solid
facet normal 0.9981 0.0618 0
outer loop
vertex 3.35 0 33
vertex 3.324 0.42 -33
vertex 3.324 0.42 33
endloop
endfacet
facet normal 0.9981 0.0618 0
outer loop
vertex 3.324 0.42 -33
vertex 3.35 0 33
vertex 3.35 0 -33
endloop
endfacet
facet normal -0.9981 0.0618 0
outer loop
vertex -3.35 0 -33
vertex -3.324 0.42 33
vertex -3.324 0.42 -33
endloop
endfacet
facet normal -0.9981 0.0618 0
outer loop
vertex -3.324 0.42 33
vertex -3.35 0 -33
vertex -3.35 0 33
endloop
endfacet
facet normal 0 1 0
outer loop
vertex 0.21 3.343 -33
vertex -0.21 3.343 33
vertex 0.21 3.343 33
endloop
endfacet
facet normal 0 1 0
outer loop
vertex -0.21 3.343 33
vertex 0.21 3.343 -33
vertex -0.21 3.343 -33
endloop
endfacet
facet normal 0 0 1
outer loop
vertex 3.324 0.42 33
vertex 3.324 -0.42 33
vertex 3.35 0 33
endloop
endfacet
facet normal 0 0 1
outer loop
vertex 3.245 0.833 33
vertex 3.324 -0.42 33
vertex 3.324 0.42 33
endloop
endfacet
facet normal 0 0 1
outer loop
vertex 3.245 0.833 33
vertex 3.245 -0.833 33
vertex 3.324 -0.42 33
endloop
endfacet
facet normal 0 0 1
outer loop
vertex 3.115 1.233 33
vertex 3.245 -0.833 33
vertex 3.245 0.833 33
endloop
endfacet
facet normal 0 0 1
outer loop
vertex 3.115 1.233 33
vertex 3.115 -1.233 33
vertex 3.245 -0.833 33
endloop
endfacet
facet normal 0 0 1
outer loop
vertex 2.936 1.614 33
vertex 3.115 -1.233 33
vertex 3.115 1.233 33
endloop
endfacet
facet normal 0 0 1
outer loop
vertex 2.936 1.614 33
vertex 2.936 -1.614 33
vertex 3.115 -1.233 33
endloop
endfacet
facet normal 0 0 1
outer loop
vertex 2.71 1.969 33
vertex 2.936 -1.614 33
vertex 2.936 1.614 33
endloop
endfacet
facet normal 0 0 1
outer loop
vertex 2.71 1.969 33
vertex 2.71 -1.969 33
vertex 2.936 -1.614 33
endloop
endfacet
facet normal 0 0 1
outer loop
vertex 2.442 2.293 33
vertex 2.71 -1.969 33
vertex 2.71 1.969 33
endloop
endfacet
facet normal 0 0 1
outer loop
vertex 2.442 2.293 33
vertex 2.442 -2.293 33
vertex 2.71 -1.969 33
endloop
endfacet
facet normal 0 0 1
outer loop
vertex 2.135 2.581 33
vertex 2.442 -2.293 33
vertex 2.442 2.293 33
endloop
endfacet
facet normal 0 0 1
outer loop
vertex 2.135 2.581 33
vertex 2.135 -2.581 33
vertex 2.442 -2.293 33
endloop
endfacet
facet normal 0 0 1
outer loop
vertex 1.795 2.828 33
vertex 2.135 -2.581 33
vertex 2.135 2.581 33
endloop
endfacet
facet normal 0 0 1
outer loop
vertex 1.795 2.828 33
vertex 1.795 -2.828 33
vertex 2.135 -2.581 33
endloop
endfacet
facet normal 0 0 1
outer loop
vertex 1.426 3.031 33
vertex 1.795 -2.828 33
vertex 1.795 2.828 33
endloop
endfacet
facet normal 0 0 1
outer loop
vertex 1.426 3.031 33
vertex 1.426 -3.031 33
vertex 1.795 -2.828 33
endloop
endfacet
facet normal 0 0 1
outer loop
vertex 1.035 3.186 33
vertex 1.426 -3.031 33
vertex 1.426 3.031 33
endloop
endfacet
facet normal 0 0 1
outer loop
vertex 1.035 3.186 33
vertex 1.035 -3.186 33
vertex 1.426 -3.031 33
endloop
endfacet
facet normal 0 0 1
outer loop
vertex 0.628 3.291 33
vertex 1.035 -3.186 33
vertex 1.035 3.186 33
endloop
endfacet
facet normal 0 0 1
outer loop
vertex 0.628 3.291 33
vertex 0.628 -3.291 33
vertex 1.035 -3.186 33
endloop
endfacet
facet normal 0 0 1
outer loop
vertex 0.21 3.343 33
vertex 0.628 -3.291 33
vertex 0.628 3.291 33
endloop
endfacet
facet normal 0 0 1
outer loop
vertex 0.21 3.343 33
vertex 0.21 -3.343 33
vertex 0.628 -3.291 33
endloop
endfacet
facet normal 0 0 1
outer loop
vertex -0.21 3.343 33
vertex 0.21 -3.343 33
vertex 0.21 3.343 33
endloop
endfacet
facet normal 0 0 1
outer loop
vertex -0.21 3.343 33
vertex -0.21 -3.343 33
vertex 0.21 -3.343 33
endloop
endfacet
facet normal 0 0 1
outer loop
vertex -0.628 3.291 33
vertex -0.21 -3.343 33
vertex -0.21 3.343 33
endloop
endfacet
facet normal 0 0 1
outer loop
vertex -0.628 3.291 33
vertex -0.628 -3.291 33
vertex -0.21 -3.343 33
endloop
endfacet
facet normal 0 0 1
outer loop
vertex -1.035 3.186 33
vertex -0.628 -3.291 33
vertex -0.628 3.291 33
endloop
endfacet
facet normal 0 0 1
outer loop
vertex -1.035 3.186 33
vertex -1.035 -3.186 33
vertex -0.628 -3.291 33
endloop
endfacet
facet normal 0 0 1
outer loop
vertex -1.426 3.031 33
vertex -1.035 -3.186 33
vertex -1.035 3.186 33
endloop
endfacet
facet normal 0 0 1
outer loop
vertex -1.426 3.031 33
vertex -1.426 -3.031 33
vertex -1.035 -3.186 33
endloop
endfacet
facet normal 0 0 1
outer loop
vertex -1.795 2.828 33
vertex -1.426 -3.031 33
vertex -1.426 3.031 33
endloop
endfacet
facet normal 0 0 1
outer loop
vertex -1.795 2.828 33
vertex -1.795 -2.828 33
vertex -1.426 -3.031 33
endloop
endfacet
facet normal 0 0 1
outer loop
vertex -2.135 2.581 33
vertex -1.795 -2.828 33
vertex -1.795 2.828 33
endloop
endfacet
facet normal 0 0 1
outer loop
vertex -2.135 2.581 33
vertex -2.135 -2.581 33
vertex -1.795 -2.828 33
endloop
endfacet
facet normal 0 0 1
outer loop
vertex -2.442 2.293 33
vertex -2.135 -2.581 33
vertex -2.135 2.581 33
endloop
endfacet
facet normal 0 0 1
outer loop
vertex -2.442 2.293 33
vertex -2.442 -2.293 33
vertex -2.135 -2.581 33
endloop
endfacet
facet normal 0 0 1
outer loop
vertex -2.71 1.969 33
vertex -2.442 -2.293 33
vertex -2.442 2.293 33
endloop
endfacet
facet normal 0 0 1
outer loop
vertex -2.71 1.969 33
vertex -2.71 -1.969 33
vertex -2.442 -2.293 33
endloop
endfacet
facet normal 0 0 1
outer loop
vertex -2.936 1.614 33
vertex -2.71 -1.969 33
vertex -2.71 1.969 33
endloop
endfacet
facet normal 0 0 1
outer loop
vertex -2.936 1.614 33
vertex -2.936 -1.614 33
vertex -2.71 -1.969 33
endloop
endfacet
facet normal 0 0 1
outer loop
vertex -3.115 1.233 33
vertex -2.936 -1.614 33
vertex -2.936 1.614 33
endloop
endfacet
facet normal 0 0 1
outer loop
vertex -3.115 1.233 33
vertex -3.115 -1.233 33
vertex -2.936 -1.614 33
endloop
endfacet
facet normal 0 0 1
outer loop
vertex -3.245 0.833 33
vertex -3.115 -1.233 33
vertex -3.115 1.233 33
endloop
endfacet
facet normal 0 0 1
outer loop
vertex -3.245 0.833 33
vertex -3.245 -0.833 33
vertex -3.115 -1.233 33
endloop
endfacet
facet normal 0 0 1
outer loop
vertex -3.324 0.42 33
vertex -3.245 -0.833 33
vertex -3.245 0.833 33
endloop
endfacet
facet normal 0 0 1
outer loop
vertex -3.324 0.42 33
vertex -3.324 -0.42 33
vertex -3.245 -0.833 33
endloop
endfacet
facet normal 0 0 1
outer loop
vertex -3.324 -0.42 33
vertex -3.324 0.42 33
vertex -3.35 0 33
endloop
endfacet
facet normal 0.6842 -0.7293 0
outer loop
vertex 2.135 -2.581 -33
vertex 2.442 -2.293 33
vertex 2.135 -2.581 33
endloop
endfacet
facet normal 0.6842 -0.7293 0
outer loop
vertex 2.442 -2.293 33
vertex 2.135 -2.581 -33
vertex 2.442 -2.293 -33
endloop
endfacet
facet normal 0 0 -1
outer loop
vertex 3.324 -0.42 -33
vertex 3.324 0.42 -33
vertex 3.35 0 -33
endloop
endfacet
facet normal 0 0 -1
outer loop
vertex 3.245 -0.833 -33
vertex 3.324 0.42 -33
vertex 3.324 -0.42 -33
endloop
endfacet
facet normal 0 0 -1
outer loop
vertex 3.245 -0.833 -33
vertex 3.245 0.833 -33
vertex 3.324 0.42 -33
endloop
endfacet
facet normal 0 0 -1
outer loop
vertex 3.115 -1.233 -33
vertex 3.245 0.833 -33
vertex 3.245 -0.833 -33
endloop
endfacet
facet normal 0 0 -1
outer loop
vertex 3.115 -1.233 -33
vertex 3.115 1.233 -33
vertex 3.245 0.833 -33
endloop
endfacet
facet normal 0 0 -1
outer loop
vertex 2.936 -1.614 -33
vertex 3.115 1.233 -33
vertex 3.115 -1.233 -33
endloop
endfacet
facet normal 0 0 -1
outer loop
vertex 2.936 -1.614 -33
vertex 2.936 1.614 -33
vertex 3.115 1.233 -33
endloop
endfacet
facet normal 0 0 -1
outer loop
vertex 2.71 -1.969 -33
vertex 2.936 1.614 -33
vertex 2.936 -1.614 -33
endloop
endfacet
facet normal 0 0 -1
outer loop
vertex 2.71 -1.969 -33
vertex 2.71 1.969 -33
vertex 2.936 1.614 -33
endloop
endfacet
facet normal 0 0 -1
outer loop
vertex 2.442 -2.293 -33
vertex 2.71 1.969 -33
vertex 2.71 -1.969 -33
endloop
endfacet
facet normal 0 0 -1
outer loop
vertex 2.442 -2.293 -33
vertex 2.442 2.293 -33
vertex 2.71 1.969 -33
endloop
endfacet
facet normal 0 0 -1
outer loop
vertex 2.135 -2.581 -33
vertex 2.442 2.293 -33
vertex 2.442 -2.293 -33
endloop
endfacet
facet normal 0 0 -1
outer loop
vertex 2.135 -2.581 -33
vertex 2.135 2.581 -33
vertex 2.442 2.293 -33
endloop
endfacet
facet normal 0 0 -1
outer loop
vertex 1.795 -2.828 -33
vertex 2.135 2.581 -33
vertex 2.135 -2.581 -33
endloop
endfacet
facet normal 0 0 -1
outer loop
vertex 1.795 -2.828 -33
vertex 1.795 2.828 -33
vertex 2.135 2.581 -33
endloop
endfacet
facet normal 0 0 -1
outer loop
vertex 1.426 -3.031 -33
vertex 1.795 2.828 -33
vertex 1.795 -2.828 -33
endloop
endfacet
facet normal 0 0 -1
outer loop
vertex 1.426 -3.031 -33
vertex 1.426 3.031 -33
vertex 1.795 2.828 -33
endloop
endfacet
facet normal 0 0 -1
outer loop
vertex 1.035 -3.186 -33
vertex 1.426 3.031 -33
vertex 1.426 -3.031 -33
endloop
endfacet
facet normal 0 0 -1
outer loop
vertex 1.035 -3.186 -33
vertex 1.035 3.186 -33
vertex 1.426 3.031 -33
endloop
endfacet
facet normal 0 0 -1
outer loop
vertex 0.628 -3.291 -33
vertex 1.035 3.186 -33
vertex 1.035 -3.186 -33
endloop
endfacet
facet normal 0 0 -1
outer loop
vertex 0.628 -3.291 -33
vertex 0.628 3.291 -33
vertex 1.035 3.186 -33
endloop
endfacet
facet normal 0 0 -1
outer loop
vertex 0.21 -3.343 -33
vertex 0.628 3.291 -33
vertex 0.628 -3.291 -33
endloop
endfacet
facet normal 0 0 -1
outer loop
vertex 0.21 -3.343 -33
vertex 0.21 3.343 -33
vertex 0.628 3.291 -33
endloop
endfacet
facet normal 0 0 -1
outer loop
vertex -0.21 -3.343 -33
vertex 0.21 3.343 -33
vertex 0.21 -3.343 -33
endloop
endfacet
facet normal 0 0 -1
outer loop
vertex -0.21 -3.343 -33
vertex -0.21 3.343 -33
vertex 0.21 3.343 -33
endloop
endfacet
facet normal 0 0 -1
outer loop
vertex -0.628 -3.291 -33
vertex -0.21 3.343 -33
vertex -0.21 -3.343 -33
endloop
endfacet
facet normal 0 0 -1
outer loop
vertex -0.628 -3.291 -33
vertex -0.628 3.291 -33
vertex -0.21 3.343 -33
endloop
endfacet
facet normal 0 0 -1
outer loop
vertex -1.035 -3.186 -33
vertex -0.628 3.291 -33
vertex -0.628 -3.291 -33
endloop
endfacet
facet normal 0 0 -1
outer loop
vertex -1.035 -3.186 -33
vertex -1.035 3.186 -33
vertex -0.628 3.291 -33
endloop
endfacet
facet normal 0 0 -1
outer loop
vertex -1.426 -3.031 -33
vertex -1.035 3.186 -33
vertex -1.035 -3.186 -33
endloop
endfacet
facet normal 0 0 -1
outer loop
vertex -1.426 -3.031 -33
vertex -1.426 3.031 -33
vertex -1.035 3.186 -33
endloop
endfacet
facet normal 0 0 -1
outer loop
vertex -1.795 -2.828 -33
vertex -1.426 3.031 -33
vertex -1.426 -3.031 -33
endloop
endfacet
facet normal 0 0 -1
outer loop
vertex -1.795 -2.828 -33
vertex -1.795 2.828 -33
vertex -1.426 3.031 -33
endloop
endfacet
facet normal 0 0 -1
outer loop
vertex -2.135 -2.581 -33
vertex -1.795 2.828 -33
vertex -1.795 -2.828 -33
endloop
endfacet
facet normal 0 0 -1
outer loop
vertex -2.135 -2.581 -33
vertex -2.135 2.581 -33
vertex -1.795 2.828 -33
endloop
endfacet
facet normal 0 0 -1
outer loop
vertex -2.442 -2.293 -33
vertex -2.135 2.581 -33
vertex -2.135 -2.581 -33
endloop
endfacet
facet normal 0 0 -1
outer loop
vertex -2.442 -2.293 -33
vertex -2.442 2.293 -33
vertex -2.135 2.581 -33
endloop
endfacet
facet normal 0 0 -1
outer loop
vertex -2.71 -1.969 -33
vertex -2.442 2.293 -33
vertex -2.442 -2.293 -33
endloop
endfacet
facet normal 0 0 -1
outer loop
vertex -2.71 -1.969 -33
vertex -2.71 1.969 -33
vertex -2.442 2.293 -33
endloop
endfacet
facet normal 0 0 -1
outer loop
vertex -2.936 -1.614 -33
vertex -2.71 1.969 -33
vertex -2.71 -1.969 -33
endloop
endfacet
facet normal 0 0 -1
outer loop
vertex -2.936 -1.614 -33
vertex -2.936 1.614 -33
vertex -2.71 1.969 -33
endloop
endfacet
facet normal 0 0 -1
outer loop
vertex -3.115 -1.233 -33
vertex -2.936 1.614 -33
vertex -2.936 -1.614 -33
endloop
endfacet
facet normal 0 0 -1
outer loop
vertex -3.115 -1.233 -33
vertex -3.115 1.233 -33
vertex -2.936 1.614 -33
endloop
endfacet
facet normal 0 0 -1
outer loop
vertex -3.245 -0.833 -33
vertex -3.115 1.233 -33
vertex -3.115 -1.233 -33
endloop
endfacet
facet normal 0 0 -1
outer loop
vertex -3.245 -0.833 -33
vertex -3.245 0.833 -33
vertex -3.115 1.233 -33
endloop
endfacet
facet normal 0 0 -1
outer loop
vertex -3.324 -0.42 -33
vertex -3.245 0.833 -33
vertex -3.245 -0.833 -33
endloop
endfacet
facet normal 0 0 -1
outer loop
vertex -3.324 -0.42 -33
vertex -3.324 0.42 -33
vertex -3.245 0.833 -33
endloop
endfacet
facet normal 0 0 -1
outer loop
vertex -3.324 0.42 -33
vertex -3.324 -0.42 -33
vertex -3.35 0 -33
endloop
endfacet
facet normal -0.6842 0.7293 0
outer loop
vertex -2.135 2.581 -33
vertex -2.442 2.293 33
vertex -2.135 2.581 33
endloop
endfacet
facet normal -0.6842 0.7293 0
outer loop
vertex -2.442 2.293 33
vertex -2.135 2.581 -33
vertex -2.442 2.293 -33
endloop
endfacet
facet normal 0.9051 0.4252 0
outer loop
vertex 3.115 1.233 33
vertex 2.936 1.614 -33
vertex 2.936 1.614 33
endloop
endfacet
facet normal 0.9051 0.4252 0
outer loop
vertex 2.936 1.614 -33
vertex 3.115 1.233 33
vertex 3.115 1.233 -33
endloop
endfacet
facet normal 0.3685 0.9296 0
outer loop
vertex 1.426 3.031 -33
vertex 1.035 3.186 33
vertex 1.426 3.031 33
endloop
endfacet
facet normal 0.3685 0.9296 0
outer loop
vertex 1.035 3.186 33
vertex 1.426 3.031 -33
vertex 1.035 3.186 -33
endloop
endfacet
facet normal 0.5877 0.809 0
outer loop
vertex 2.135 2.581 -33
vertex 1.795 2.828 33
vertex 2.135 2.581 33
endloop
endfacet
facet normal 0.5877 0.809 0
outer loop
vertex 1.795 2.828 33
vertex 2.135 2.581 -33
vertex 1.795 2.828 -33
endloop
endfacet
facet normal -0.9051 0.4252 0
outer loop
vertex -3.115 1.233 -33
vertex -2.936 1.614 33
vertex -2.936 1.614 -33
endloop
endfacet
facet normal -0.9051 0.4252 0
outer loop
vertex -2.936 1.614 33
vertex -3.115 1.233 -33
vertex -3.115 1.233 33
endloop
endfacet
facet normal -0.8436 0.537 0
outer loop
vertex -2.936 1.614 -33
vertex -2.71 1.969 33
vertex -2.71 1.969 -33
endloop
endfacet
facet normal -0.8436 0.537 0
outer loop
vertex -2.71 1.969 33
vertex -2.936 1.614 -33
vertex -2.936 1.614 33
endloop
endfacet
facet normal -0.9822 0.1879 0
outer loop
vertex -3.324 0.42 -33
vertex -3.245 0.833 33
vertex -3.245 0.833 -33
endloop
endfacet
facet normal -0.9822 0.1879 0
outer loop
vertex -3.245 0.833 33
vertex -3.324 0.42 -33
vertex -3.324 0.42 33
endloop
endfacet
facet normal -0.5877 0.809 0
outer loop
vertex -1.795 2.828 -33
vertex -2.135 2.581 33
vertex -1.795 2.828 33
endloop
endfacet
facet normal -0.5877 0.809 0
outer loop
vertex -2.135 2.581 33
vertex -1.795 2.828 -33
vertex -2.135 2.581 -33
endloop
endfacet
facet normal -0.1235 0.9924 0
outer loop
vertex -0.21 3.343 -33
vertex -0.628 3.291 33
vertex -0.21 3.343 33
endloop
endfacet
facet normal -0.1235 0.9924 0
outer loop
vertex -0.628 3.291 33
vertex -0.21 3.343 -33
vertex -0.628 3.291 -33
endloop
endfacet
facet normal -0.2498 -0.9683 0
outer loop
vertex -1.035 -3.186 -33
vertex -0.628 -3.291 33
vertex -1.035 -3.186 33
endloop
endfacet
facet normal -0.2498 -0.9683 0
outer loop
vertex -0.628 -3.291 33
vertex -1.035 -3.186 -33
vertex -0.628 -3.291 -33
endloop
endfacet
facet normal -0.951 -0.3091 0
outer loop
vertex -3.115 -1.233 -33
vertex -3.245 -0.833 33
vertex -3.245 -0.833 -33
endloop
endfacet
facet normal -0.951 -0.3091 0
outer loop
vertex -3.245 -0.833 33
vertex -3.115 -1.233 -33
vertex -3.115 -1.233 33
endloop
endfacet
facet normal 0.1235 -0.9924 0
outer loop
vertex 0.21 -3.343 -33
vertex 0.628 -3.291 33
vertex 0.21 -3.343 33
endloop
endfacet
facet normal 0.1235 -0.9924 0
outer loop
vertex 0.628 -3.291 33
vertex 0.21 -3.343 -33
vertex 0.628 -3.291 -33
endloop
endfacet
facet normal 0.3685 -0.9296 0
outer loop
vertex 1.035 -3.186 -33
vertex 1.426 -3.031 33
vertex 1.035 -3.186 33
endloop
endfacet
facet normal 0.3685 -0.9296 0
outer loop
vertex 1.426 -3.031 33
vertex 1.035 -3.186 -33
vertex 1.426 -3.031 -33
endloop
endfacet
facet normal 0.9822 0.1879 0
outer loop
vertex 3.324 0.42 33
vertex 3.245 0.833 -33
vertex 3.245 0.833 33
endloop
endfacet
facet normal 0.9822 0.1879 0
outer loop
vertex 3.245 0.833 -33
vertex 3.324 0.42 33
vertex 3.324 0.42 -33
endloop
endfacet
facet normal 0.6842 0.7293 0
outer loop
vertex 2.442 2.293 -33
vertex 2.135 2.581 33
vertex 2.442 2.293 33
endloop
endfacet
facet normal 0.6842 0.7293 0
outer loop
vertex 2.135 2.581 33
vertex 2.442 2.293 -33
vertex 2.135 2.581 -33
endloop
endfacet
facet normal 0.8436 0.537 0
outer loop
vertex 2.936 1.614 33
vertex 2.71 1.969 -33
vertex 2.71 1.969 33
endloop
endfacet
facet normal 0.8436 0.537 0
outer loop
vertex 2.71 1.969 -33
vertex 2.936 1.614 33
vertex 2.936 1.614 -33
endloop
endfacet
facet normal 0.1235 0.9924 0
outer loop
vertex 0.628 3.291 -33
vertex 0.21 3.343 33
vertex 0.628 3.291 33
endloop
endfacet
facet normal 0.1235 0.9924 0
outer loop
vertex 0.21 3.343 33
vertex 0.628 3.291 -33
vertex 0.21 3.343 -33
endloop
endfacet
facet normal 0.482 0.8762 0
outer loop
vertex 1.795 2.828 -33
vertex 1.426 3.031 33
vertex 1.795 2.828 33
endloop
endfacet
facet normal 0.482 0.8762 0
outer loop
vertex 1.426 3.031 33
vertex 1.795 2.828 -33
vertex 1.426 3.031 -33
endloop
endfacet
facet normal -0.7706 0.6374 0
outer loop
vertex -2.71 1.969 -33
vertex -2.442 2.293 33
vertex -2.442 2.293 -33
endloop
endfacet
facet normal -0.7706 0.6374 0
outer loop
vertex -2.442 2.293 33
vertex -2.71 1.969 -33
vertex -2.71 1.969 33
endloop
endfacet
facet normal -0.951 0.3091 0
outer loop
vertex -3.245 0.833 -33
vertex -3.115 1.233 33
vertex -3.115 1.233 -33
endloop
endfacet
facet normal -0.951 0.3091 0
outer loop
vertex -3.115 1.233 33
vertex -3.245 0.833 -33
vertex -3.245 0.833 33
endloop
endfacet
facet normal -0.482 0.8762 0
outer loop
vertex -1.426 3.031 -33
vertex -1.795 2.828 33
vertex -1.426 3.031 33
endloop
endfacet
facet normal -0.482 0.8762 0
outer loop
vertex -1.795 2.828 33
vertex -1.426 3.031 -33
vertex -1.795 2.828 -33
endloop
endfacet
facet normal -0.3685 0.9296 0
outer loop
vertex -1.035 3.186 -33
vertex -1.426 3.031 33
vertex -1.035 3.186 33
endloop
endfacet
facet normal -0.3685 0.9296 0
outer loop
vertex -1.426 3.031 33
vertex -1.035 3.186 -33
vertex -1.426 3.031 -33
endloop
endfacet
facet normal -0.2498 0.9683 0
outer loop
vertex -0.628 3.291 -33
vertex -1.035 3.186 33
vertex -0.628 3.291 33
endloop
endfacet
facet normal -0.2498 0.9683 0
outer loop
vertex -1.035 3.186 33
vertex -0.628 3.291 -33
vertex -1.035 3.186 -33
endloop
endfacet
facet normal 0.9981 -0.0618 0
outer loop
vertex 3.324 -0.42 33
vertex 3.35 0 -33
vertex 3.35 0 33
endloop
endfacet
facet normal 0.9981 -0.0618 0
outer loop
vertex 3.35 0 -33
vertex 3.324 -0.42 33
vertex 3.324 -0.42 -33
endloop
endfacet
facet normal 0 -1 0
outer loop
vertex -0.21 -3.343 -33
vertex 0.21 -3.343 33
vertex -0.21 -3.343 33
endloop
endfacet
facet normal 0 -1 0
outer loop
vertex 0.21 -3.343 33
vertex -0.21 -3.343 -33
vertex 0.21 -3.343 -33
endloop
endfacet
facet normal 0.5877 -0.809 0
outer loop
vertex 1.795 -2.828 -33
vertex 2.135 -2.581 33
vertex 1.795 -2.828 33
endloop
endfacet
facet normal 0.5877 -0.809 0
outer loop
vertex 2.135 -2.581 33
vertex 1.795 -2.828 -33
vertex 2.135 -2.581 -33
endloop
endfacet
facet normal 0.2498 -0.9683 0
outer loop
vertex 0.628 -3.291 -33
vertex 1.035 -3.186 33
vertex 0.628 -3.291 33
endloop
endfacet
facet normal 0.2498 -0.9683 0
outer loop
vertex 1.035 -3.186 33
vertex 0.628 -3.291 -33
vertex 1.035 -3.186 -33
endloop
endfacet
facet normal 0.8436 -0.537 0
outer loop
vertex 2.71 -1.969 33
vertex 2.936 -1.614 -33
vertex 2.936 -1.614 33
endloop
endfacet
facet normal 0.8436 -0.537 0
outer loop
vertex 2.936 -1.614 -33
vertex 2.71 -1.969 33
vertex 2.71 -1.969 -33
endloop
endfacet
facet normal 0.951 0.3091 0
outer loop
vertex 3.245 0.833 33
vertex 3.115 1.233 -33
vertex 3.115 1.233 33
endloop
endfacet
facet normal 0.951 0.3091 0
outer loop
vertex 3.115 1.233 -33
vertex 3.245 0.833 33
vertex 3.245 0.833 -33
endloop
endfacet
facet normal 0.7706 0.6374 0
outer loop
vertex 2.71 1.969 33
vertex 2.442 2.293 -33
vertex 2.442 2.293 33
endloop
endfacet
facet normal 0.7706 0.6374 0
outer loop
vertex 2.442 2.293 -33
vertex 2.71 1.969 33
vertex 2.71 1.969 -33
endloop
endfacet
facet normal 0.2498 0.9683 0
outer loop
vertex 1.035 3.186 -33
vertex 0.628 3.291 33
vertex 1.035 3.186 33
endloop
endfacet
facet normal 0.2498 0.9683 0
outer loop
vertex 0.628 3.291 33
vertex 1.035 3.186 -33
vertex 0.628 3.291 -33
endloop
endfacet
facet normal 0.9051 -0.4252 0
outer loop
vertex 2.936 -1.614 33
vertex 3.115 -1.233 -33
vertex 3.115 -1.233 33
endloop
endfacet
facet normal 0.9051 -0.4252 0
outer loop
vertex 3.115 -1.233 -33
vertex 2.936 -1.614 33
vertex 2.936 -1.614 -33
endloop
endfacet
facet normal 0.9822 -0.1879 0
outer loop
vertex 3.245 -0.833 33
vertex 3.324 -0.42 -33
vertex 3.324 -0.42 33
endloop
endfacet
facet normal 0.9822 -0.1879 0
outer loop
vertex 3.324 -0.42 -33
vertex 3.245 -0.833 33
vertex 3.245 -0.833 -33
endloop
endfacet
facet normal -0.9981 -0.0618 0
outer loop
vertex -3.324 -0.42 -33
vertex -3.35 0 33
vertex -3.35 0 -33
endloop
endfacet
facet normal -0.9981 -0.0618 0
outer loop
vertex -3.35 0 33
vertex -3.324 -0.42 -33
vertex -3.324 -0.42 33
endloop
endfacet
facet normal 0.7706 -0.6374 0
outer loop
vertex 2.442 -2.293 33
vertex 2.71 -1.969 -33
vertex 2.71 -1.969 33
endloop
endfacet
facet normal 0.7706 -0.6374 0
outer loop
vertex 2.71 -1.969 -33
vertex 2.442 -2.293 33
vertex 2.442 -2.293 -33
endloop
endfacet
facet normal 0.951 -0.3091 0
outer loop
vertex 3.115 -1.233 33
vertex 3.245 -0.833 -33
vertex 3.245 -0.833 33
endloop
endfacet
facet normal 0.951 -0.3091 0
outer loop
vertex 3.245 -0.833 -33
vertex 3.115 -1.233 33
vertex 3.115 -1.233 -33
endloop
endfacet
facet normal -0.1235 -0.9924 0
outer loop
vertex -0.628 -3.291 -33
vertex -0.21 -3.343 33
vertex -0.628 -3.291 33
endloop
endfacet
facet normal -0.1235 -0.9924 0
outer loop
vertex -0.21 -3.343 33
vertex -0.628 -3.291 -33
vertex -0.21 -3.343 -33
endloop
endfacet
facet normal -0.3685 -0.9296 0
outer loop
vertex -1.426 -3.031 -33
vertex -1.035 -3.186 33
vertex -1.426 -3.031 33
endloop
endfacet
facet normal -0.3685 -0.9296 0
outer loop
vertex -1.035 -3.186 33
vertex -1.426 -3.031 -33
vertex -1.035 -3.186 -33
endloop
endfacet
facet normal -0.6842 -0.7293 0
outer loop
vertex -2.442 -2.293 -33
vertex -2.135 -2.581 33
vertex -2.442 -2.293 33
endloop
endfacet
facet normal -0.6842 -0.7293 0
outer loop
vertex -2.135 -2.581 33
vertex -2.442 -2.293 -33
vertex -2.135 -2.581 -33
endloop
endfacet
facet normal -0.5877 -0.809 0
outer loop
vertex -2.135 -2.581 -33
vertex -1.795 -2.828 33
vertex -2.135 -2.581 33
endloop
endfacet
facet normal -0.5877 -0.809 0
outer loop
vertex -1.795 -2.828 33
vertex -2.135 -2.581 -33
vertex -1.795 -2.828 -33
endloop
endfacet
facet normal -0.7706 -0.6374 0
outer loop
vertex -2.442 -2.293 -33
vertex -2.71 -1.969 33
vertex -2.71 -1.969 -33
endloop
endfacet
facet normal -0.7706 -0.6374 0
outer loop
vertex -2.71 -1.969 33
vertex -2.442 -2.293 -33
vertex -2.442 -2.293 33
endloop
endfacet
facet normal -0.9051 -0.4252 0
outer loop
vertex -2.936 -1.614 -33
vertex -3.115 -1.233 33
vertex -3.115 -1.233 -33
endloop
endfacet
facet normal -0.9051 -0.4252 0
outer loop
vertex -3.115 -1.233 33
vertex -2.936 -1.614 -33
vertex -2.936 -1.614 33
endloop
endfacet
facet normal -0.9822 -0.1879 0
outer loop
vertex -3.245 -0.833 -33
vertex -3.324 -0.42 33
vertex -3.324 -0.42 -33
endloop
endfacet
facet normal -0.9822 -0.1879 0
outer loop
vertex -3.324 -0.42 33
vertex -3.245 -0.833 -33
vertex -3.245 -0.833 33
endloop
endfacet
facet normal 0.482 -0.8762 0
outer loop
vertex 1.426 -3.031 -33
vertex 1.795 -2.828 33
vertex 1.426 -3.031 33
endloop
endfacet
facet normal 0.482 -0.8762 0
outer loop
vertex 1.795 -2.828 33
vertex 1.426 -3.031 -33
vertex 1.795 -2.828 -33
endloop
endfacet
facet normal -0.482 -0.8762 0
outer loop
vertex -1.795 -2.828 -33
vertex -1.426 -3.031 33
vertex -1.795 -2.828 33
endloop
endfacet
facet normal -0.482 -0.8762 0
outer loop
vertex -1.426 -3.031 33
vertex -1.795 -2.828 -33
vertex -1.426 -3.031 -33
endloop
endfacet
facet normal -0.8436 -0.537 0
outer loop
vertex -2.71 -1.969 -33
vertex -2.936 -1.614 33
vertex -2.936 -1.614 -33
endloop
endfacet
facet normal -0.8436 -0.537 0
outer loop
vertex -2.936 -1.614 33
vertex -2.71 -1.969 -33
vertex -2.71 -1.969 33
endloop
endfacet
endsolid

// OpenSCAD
$fn = 50;


difference() {
	union() {
		translate(v = [0, 0, -33.0000000000]) {
			cylinder(h = 66, r = 3.3500000000);
		}
	}
	union() {
		translate(v = [0, 0, -100.0000000000]) {
			cylinder(h = 200, r = 0);
		}
	}
}
